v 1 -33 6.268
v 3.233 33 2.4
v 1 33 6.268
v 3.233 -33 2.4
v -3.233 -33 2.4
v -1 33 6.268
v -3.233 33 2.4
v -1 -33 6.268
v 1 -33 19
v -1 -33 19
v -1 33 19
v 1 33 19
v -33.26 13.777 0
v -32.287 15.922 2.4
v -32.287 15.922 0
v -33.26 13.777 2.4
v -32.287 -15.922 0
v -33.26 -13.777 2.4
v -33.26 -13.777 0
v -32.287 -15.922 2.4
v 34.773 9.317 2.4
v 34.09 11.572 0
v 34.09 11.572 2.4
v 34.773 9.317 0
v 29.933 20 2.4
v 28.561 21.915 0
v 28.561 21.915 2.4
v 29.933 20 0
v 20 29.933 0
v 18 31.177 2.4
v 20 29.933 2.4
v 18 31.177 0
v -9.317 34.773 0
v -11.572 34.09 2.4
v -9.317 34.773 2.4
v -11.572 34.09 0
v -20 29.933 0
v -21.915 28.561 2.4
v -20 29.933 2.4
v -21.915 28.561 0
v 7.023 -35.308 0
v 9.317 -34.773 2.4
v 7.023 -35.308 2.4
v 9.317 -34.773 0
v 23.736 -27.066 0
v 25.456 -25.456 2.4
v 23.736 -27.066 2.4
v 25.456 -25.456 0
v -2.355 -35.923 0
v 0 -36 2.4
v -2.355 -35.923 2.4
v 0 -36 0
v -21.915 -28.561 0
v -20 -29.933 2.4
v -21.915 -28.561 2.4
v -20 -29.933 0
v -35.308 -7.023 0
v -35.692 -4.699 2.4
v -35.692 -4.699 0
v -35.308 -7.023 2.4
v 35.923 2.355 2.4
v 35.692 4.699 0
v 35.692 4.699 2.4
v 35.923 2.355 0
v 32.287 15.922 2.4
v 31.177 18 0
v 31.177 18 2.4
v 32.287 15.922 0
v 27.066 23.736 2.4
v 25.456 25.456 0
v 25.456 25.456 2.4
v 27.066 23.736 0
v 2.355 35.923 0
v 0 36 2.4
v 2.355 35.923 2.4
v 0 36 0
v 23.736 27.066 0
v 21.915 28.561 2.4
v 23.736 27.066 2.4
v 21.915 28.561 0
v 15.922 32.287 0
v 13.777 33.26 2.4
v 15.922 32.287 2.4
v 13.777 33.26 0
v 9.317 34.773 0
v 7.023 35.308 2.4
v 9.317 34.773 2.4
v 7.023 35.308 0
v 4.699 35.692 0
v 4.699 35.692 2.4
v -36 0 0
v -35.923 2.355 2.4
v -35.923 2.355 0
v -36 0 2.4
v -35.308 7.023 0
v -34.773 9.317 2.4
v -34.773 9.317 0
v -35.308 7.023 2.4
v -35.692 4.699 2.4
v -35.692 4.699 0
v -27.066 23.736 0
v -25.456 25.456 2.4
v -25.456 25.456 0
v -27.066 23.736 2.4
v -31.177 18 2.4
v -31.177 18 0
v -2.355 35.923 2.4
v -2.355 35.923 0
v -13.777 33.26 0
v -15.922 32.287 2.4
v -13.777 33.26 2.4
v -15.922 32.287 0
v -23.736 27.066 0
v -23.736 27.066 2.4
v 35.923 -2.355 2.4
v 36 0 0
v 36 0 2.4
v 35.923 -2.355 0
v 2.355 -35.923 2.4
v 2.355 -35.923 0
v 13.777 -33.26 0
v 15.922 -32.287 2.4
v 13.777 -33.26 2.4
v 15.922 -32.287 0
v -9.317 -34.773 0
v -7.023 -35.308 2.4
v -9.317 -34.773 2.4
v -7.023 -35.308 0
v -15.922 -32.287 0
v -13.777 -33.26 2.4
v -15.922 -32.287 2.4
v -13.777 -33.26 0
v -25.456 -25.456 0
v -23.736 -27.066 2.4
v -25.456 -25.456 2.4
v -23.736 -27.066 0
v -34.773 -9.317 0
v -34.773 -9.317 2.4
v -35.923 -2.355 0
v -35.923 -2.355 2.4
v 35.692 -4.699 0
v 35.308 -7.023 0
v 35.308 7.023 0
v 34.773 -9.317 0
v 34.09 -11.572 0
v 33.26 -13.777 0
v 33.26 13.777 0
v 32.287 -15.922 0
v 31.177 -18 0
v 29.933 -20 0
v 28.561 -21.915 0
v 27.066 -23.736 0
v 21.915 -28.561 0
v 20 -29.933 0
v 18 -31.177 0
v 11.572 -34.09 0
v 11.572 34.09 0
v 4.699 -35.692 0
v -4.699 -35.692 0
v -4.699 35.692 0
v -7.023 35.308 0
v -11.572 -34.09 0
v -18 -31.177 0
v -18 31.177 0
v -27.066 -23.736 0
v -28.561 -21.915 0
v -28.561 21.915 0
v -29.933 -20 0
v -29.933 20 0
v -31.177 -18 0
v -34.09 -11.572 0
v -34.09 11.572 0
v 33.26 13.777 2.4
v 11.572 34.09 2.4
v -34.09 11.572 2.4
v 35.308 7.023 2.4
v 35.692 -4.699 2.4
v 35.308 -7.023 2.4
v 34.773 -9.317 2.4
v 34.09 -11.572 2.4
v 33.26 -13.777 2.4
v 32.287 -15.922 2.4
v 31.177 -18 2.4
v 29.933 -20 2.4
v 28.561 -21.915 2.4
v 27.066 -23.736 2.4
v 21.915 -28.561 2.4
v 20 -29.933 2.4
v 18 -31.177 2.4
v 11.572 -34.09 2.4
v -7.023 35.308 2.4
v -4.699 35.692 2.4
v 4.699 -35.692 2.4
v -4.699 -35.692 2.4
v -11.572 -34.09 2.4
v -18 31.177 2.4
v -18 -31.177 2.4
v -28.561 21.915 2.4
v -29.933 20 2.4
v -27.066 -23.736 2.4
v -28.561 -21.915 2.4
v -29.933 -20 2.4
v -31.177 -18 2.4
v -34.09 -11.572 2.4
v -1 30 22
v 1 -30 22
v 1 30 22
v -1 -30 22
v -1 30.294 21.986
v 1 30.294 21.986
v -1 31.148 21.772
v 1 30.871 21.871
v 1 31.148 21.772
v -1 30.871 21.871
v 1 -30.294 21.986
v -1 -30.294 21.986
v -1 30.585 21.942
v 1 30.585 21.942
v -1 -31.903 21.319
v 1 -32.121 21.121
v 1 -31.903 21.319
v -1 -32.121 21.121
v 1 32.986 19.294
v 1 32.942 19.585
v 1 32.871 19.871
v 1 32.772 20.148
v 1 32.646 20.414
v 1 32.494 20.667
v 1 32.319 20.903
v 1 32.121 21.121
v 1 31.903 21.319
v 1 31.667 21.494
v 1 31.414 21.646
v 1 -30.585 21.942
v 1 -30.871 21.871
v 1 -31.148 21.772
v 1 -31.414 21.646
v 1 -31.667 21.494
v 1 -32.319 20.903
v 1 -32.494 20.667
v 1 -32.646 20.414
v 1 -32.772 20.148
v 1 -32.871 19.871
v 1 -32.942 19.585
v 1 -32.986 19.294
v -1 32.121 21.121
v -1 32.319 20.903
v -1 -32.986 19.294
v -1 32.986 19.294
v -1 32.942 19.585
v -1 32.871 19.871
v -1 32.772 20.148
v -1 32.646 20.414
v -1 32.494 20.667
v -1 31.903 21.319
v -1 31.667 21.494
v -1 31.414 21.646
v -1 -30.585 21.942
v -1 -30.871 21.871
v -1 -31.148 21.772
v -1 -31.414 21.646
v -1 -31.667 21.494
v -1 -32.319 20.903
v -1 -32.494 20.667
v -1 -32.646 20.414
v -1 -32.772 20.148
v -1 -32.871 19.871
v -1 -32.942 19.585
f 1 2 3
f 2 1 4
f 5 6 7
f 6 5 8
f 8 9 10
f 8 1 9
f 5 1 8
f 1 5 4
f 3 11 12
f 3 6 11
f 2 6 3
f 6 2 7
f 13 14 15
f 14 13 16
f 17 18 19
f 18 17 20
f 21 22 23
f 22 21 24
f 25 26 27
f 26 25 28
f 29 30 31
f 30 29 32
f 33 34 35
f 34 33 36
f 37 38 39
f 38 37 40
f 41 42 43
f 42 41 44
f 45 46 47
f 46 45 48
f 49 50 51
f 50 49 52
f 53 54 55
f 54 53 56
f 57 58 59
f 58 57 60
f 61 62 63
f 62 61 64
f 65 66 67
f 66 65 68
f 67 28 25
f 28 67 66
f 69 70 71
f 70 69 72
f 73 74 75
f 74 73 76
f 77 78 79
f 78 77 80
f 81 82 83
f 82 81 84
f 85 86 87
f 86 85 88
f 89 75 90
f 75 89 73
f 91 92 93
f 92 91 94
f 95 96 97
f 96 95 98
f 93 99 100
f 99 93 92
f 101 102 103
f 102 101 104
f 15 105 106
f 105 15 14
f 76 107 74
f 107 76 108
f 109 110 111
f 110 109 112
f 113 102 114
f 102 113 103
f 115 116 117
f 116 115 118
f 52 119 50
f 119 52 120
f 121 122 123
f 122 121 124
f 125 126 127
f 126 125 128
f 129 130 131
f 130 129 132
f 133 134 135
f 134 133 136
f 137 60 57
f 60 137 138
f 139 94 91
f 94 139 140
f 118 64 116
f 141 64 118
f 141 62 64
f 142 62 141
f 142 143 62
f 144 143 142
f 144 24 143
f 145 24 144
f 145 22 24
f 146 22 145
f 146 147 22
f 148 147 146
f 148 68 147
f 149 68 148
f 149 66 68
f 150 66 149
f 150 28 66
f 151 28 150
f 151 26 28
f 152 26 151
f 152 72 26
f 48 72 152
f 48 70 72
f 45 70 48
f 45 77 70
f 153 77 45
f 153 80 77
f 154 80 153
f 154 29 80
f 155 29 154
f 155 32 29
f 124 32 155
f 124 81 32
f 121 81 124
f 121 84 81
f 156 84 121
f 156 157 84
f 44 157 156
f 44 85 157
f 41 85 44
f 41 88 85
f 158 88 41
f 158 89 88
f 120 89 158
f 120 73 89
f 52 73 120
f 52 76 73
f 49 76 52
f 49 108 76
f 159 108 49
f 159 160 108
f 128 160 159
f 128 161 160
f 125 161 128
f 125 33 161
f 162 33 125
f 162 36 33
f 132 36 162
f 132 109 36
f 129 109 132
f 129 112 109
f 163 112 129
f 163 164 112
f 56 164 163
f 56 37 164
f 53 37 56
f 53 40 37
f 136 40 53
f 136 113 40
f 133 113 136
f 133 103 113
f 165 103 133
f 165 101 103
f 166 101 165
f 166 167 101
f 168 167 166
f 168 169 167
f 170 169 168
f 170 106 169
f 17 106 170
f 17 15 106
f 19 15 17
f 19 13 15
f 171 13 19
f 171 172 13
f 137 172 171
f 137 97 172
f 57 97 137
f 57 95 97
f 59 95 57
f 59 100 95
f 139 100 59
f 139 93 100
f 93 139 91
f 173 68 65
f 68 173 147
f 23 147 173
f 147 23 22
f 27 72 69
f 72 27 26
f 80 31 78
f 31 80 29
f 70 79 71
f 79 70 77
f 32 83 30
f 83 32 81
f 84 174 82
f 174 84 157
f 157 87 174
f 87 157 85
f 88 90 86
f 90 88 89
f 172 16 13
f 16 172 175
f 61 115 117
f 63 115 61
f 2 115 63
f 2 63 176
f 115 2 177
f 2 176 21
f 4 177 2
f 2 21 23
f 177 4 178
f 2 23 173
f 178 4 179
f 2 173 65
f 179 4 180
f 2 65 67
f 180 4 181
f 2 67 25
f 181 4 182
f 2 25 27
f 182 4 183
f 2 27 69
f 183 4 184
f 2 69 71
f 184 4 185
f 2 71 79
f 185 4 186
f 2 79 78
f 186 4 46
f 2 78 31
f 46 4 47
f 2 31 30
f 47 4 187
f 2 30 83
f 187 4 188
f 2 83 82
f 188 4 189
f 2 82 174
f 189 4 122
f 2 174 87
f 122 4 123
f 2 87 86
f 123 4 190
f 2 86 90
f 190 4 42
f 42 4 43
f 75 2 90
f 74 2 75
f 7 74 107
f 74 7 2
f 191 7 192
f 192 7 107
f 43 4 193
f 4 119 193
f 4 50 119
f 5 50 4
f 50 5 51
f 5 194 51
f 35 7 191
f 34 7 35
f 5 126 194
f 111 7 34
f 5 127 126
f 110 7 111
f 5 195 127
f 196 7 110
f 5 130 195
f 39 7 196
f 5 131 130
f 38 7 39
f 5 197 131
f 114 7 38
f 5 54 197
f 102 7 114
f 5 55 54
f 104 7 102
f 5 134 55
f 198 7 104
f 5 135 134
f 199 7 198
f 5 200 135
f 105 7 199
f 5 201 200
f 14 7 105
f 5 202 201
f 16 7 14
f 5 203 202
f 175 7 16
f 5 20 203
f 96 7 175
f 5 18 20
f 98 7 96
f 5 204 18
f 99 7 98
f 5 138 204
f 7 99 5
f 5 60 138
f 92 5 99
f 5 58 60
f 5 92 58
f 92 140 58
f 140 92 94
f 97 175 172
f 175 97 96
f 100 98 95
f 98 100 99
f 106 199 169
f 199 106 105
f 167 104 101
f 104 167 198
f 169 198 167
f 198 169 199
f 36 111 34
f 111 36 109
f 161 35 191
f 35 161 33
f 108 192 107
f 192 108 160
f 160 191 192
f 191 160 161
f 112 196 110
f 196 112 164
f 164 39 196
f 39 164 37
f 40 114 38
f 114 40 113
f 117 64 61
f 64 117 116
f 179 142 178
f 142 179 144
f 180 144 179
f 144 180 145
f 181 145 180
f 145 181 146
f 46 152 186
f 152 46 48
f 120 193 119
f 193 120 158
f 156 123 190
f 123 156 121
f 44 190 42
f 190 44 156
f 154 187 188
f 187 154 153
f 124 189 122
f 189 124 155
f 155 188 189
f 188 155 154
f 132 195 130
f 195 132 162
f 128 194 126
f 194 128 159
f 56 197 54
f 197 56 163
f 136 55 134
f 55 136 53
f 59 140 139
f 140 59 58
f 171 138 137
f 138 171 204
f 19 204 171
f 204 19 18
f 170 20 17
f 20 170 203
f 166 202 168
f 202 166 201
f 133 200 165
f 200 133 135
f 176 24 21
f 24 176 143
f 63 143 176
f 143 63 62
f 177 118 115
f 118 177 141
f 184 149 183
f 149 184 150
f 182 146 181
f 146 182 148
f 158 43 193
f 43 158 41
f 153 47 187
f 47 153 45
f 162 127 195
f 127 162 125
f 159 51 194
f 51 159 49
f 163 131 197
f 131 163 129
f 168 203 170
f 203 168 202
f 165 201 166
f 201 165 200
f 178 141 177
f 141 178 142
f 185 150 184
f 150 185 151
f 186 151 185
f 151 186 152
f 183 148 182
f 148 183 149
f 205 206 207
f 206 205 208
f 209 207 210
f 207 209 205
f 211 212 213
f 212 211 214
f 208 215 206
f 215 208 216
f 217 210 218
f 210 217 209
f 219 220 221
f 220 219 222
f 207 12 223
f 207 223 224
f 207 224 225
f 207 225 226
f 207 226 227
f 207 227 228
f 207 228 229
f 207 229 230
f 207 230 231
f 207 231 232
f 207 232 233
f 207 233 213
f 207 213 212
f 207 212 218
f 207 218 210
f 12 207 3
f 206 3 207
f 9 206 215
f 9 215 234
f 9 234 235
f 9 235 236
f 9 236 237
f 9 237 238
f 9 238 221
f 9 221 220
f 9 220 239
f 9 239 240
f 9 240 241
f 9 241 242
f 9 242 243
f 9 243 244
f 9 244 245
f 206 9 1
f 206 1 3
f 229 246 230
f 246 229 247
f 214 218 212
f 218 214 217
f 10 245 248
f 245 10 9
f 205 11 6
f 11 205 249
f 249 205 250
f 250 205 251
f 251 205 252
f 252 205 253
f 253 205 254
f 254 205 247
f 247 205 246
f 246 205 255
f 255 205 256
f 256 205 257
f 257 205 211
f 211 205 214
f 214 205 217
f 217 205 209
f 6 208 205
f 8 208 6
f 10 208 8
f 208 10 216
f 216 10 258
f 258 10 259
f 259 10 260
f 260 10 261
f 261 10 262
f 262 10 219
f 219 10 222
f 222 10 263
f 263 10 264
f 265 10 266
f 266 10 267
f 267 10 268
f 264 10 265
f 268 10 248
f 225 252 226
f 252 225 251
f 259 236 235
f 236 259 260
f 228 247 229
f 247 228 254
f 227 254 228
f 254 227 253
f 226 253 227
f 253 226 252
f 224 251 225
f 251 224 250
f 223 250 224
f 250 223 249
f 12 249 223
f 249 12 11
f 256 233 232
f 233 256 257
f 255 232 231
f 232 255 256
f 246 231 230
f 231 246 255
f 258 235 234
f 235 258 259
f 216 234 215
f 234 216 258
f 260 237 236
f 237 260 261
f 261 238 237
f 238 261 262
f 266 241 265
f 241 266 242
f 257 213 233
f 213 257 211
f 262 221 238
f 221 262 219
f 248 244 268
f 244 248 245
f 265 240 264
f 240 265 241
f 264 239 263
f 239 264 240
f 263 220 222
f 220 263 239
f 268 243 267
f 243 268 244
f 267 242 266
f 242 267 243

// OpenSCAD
union() // SharpSCAD generated scene: pf_tamper
{
  { // module: pf_tamper
    union()
    {
      translate( v= [ 0, 0, 4 ] )
      {
        rotate( a= [ 90, 30, 0 ] )
        {
          cylinder( r= 4, center= true, $fn= 3, h= 66 );
        }
      }
      cylinder( r= 36, $fn= 96, h= 2.4 );
      translate( v= [ 1, -33, 0 ] )
      {
        rotate( a= [ 0, -90, 0 ] )
        {
          translate( v= [ 3, 3, 0 ] )
          {
            hull()
            {
              cylinder( r= 3, $fn= 64, h= 2 );
              translate( v= [ 16, 0, 0 ] )
              {
                cylinder( r= 3, $fn= 64, h= 2 );
              }
              translate( v= [ 0, 60, 0 ] )
              {
                cylinder( r= 3, $fn= 64, h= 2 );
              }
              translate( v= [ 16, 60, 0 ] )
              {
                cylinder( r= 3, $fn= 64, h= 2 );
              }
            }
          }
        }
      }
    }
  }
}
